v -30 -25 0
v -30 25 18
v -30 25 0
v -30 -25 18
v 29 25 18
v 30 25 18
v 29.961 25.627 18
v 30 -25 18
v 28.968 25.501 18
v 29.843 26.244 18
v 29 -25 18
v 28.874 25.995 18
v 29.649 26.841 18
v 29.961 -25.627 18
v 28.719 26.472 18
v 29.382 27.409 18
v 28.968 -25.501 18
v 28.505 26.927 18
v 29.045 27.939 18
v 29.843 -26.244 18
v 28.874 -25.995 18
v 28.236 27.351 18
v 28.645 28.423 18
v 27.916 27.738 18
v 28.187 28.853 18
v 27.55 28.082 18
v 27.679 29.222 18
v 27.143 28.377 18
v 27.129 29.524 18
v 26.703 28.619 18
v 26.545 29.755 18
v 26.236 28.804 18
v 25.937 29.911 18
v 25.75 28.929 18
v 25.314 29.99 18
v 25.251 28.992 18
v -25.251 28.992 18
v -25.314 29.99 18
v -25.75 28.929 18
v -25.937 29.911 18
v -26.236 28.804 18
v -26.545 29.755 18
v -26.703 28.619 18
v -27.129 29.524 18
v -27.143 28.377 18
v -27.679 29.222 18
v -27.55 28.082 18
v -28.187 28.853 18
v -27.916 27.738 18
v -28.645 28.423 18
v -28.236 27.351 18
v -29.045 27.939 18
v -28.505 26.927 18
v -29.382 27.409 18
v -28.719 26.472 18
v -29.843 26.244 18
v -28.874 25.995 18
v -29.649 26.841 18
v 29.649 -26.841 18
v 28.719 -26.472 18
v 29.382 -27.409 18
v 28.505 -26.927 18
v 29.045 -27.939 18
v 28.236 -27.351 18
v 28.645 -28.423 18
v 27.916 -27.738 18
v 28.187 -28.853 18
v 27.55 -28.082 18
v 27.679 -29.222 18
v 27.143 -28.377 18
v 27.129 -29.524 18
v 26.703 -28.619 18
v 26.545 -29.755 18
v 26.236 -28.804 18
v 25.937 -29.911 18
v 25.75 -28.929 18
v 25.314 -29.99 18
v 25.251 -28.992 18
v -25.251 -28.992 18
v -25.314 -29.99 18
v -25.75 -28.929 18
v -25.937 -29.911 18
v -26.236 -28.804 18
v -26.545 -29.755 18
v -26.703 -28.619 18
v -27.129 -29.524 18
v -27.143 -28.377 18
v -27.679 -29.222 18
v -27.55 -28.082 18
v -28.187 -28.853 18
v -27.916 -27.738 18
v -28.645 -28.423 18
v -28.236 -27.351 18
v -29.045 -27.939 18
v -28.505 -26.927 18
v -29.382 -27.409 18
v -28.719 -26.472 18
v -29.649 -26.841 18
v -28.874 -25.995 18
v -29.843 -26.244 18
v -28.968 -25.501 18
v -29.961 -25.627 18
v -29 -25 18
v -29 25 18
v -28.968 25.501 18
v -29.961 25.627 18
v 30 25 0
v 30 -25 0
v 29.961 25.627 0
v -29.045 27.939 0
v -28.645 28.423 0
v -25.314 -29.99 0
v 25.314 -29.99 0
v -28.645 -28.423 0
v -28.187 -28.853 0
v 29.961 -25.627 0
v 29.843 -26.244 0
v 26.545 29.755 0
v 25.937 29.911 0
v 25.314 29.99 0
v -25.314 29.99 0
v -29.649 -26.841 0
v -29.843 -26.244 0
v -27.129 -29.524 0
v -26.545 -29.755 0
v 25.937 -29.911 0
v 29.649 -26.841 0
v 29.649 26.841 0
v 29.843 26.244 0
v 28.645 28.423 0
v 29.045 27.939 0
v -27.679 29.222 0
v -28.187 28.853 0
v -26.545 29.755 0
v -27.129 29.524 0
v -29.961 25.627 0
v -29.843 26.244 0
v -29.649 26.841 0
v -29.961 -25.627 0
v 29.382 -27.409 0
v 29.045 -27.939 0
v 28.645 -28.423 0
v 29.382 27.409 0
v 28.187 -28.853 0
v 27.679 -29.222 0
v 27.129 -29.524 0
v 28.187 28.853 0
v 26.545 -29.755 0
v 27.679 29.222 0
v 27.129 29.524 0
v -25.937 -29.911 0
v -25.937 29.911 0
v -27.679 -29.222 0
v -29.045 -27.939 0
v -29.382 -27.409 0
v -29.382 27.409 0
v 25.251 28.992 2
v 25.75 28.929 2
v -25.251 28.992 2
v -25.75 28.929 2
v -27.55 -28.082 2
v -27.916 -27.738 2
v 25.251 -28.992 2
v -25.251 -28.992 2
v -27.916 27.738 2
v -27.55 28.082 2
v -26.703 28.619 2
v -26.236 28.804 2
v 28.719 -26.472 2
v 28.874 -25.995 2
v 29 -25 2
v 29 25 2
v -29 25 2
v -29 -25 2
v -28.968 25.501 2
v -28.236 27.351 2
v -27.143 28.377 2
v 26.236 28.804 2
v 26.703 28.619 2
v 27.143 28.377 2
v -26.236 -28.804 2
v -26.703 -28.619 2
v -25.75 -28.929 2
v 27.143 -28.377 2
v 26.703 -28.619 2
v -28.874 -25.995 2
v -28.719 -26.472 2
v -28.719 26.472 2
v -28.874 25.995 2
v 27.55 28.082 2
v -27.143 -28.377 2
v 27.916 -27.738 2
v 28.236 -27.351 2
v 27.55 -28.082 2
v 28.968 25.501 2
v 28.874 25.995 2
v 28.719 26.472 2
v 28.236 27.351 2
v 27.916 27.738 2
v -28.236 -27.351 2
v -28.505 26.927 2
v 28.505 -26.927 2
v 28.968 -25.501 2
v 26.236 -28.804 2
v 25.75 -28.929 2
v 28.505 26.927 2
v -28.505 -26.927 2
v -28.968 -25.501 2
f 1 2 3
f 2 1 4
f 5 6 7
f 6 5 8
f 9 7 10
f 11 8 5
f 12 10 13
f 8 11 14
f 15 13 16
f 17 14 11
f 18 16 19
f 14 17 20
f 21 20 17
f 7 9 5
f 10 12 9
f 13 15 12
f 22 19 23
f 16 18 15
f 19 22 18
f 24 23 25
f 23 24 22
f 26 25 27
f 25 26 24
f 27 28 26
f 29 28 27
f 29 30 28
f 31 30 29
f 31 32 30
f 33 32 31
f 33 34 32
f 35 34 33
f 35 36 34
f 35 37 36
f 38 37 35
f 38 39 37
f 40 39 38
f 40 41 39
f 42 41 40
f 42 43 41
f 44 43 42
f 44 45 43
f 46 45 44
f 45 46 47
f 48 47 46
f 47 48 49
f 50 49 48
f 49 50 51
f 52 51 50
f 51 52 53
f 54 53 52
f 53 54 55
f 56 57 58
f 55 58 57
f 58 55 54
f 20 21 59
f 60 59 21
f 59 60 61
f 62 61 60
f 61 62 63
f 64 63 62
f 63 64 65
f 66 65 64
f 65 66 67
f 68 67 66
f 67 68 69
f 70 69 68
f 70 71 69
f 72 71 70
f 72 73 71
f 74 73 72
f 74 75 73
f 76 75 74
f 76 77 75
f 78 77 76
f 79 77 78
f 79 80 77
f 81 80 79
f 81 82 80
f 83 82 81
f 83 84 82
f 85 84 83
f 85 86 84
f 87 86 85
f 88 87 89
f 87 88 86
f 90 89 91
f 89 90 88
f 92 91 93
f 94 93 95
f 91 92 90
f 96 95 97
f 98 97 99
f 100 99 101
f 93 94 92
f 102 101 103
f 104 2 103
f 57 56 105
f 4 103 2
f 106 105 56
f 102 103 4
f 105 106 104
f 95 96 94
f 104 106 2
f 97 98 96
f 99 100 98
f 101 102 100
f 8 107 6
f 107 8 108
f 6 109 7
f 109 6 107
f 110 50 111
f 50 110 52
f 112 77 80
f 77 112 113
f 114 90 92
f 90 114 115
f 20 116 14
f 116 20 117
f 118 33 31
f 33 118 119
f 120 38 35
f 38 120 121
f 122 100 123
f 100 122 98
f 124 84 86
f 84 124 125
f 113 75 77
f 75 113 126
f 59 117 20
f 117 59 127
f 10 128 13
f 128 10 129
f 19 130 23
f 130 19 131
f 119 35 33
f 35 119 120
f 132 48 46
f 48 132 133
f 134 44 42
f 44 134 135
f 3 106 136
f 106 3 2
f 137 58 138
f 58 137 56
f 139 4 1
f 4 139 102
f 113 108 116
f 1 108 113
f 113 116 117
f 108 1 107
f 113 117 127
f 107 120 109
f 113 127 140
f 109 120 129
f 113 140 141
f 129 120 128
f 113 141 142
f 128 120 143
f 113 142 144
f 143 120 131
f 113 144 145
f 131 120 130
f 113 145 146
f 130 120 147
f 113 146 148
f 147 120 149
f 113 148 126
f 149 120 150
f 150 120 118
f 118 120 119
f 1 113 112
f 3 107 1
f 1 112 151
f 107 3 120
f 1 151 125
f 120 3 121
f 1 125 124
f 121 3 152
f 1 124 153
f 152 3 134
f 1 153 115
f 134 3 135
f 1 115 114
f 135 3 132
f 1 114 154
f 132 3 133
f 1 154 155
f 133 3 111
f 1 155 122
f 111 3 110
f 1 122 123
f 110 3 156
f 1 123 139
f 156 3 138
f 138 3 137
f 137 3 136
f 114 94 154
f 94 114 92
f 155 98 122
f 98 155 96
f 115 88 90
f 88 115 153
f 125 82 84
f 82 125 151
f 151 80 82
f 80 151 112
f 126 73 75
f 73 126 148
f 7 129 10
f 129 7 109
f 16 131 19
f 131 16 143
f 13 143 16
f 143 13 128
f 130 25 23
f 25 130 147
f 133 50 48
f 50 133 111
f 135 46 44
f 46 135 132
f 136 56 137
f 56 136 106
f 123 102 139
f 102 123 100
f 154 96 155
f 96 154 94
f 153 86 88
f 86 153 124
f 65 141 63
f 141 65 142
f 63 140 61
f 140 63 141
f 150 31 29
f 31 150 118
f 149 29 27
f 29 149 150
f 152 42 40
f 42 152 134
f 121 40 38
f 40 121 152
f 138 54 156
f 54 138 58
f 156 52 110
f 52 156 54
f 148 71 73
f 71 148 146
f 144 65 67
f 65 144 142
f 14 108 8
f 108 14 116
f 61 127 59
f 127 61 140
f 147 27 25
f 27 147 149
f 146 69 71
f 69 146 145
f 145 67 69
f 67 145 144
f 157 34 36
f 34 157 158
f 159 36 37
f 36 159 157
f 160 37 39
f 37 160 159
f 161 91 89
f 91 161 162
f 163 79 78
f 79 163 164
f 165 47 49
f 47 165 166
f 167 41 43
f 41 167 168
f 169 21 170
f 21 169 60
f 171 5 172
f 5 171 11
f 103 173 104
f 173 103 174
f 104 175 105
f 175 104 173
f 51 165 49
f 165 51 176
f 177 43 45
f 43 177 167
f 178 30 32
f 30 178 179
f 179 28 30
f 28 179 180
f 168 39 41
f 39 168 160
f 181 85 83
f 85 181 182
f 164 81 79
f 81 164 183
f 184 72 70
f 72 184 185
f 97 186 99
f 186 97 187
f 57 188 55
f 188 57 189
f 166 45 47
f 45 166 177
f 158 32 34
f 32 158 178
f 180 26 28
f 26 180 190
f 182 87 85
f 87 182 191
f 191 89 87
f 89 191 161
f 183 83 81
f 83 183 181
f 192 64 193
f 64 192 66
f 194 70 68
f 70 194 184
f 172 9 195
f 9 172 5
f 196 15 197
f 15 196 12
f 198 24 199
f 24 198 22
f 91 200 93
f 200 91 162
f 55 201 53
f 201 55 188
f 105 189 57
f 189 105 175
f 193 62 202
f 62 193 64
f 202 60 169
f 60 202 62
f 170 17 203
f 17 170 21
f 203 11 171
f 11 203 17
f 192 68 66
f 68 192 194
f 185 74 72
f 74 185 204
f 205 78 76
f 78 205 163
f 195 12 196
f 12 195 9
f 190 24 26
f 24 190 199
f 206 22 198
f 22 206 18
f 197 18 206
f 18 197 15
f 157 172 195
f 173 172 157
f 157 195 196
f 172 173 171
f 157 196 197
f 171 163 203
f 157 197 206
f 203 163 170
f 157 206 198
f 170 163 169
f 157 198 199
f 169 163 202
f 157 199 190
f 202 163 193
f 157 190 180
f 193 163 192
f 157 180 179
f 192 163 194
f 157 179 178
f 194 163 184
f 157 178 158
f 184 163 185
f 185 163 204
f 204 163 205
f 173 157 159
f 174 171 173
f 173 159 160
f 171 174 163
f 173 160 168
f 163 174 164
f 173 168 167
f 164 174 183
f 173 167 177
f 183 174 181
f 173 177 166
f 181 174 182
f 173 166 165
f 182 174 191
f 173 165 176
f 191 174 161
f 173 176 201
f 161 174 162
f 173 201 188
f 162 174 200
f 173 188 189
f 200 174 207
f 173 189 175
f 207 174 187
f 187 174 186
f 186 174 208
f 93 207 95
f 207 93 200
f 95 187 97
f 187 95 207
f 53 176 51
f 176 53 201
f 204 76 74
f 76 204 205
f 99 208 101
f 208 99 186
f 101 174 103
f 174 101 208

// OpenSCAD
$fn = 50;


difference() {
	union() {
		hull() {
			translate(v = [-25.0000000000, 25.0000000000, 0]) {
				cylinder(h = 18, r = 5);
			}
			translate(v = [25.0000000000, 25.0000000000, 0]) {
				cylinder(h = 18, r = 5);
			}
			translate(v = [-25.0000000000, -25.0000000000, 0]) {
				cylinder(h = 18, r = 5);
			}
			translate(v = [25.0000000000, -25.0000000000, 0]) {
				cylinder(h = 18, r = 5);
			}
		}
	}
	union() {
		translate(v = [0, 0, 2]) {
			#hull() {
				translate(v = [-25.0000000000, 25.0000000000, 0]) {
					cylinder(h = 16, r = 4);
				}
				translate(v = [25.0000000000, 25.0000000000, 0]) {
					cylinder(h = 16, r = 4);
				}
				translate(v = [-25.0000000000, -25.0000000000, 0]) {
					cylinder(h = 16, r = 4);
				}
				translate(v = [25.0000000000, -25.0000000000, 0]) {
					cylinder(h = 16, r = 4);
				}
			}
		}
	}
}
